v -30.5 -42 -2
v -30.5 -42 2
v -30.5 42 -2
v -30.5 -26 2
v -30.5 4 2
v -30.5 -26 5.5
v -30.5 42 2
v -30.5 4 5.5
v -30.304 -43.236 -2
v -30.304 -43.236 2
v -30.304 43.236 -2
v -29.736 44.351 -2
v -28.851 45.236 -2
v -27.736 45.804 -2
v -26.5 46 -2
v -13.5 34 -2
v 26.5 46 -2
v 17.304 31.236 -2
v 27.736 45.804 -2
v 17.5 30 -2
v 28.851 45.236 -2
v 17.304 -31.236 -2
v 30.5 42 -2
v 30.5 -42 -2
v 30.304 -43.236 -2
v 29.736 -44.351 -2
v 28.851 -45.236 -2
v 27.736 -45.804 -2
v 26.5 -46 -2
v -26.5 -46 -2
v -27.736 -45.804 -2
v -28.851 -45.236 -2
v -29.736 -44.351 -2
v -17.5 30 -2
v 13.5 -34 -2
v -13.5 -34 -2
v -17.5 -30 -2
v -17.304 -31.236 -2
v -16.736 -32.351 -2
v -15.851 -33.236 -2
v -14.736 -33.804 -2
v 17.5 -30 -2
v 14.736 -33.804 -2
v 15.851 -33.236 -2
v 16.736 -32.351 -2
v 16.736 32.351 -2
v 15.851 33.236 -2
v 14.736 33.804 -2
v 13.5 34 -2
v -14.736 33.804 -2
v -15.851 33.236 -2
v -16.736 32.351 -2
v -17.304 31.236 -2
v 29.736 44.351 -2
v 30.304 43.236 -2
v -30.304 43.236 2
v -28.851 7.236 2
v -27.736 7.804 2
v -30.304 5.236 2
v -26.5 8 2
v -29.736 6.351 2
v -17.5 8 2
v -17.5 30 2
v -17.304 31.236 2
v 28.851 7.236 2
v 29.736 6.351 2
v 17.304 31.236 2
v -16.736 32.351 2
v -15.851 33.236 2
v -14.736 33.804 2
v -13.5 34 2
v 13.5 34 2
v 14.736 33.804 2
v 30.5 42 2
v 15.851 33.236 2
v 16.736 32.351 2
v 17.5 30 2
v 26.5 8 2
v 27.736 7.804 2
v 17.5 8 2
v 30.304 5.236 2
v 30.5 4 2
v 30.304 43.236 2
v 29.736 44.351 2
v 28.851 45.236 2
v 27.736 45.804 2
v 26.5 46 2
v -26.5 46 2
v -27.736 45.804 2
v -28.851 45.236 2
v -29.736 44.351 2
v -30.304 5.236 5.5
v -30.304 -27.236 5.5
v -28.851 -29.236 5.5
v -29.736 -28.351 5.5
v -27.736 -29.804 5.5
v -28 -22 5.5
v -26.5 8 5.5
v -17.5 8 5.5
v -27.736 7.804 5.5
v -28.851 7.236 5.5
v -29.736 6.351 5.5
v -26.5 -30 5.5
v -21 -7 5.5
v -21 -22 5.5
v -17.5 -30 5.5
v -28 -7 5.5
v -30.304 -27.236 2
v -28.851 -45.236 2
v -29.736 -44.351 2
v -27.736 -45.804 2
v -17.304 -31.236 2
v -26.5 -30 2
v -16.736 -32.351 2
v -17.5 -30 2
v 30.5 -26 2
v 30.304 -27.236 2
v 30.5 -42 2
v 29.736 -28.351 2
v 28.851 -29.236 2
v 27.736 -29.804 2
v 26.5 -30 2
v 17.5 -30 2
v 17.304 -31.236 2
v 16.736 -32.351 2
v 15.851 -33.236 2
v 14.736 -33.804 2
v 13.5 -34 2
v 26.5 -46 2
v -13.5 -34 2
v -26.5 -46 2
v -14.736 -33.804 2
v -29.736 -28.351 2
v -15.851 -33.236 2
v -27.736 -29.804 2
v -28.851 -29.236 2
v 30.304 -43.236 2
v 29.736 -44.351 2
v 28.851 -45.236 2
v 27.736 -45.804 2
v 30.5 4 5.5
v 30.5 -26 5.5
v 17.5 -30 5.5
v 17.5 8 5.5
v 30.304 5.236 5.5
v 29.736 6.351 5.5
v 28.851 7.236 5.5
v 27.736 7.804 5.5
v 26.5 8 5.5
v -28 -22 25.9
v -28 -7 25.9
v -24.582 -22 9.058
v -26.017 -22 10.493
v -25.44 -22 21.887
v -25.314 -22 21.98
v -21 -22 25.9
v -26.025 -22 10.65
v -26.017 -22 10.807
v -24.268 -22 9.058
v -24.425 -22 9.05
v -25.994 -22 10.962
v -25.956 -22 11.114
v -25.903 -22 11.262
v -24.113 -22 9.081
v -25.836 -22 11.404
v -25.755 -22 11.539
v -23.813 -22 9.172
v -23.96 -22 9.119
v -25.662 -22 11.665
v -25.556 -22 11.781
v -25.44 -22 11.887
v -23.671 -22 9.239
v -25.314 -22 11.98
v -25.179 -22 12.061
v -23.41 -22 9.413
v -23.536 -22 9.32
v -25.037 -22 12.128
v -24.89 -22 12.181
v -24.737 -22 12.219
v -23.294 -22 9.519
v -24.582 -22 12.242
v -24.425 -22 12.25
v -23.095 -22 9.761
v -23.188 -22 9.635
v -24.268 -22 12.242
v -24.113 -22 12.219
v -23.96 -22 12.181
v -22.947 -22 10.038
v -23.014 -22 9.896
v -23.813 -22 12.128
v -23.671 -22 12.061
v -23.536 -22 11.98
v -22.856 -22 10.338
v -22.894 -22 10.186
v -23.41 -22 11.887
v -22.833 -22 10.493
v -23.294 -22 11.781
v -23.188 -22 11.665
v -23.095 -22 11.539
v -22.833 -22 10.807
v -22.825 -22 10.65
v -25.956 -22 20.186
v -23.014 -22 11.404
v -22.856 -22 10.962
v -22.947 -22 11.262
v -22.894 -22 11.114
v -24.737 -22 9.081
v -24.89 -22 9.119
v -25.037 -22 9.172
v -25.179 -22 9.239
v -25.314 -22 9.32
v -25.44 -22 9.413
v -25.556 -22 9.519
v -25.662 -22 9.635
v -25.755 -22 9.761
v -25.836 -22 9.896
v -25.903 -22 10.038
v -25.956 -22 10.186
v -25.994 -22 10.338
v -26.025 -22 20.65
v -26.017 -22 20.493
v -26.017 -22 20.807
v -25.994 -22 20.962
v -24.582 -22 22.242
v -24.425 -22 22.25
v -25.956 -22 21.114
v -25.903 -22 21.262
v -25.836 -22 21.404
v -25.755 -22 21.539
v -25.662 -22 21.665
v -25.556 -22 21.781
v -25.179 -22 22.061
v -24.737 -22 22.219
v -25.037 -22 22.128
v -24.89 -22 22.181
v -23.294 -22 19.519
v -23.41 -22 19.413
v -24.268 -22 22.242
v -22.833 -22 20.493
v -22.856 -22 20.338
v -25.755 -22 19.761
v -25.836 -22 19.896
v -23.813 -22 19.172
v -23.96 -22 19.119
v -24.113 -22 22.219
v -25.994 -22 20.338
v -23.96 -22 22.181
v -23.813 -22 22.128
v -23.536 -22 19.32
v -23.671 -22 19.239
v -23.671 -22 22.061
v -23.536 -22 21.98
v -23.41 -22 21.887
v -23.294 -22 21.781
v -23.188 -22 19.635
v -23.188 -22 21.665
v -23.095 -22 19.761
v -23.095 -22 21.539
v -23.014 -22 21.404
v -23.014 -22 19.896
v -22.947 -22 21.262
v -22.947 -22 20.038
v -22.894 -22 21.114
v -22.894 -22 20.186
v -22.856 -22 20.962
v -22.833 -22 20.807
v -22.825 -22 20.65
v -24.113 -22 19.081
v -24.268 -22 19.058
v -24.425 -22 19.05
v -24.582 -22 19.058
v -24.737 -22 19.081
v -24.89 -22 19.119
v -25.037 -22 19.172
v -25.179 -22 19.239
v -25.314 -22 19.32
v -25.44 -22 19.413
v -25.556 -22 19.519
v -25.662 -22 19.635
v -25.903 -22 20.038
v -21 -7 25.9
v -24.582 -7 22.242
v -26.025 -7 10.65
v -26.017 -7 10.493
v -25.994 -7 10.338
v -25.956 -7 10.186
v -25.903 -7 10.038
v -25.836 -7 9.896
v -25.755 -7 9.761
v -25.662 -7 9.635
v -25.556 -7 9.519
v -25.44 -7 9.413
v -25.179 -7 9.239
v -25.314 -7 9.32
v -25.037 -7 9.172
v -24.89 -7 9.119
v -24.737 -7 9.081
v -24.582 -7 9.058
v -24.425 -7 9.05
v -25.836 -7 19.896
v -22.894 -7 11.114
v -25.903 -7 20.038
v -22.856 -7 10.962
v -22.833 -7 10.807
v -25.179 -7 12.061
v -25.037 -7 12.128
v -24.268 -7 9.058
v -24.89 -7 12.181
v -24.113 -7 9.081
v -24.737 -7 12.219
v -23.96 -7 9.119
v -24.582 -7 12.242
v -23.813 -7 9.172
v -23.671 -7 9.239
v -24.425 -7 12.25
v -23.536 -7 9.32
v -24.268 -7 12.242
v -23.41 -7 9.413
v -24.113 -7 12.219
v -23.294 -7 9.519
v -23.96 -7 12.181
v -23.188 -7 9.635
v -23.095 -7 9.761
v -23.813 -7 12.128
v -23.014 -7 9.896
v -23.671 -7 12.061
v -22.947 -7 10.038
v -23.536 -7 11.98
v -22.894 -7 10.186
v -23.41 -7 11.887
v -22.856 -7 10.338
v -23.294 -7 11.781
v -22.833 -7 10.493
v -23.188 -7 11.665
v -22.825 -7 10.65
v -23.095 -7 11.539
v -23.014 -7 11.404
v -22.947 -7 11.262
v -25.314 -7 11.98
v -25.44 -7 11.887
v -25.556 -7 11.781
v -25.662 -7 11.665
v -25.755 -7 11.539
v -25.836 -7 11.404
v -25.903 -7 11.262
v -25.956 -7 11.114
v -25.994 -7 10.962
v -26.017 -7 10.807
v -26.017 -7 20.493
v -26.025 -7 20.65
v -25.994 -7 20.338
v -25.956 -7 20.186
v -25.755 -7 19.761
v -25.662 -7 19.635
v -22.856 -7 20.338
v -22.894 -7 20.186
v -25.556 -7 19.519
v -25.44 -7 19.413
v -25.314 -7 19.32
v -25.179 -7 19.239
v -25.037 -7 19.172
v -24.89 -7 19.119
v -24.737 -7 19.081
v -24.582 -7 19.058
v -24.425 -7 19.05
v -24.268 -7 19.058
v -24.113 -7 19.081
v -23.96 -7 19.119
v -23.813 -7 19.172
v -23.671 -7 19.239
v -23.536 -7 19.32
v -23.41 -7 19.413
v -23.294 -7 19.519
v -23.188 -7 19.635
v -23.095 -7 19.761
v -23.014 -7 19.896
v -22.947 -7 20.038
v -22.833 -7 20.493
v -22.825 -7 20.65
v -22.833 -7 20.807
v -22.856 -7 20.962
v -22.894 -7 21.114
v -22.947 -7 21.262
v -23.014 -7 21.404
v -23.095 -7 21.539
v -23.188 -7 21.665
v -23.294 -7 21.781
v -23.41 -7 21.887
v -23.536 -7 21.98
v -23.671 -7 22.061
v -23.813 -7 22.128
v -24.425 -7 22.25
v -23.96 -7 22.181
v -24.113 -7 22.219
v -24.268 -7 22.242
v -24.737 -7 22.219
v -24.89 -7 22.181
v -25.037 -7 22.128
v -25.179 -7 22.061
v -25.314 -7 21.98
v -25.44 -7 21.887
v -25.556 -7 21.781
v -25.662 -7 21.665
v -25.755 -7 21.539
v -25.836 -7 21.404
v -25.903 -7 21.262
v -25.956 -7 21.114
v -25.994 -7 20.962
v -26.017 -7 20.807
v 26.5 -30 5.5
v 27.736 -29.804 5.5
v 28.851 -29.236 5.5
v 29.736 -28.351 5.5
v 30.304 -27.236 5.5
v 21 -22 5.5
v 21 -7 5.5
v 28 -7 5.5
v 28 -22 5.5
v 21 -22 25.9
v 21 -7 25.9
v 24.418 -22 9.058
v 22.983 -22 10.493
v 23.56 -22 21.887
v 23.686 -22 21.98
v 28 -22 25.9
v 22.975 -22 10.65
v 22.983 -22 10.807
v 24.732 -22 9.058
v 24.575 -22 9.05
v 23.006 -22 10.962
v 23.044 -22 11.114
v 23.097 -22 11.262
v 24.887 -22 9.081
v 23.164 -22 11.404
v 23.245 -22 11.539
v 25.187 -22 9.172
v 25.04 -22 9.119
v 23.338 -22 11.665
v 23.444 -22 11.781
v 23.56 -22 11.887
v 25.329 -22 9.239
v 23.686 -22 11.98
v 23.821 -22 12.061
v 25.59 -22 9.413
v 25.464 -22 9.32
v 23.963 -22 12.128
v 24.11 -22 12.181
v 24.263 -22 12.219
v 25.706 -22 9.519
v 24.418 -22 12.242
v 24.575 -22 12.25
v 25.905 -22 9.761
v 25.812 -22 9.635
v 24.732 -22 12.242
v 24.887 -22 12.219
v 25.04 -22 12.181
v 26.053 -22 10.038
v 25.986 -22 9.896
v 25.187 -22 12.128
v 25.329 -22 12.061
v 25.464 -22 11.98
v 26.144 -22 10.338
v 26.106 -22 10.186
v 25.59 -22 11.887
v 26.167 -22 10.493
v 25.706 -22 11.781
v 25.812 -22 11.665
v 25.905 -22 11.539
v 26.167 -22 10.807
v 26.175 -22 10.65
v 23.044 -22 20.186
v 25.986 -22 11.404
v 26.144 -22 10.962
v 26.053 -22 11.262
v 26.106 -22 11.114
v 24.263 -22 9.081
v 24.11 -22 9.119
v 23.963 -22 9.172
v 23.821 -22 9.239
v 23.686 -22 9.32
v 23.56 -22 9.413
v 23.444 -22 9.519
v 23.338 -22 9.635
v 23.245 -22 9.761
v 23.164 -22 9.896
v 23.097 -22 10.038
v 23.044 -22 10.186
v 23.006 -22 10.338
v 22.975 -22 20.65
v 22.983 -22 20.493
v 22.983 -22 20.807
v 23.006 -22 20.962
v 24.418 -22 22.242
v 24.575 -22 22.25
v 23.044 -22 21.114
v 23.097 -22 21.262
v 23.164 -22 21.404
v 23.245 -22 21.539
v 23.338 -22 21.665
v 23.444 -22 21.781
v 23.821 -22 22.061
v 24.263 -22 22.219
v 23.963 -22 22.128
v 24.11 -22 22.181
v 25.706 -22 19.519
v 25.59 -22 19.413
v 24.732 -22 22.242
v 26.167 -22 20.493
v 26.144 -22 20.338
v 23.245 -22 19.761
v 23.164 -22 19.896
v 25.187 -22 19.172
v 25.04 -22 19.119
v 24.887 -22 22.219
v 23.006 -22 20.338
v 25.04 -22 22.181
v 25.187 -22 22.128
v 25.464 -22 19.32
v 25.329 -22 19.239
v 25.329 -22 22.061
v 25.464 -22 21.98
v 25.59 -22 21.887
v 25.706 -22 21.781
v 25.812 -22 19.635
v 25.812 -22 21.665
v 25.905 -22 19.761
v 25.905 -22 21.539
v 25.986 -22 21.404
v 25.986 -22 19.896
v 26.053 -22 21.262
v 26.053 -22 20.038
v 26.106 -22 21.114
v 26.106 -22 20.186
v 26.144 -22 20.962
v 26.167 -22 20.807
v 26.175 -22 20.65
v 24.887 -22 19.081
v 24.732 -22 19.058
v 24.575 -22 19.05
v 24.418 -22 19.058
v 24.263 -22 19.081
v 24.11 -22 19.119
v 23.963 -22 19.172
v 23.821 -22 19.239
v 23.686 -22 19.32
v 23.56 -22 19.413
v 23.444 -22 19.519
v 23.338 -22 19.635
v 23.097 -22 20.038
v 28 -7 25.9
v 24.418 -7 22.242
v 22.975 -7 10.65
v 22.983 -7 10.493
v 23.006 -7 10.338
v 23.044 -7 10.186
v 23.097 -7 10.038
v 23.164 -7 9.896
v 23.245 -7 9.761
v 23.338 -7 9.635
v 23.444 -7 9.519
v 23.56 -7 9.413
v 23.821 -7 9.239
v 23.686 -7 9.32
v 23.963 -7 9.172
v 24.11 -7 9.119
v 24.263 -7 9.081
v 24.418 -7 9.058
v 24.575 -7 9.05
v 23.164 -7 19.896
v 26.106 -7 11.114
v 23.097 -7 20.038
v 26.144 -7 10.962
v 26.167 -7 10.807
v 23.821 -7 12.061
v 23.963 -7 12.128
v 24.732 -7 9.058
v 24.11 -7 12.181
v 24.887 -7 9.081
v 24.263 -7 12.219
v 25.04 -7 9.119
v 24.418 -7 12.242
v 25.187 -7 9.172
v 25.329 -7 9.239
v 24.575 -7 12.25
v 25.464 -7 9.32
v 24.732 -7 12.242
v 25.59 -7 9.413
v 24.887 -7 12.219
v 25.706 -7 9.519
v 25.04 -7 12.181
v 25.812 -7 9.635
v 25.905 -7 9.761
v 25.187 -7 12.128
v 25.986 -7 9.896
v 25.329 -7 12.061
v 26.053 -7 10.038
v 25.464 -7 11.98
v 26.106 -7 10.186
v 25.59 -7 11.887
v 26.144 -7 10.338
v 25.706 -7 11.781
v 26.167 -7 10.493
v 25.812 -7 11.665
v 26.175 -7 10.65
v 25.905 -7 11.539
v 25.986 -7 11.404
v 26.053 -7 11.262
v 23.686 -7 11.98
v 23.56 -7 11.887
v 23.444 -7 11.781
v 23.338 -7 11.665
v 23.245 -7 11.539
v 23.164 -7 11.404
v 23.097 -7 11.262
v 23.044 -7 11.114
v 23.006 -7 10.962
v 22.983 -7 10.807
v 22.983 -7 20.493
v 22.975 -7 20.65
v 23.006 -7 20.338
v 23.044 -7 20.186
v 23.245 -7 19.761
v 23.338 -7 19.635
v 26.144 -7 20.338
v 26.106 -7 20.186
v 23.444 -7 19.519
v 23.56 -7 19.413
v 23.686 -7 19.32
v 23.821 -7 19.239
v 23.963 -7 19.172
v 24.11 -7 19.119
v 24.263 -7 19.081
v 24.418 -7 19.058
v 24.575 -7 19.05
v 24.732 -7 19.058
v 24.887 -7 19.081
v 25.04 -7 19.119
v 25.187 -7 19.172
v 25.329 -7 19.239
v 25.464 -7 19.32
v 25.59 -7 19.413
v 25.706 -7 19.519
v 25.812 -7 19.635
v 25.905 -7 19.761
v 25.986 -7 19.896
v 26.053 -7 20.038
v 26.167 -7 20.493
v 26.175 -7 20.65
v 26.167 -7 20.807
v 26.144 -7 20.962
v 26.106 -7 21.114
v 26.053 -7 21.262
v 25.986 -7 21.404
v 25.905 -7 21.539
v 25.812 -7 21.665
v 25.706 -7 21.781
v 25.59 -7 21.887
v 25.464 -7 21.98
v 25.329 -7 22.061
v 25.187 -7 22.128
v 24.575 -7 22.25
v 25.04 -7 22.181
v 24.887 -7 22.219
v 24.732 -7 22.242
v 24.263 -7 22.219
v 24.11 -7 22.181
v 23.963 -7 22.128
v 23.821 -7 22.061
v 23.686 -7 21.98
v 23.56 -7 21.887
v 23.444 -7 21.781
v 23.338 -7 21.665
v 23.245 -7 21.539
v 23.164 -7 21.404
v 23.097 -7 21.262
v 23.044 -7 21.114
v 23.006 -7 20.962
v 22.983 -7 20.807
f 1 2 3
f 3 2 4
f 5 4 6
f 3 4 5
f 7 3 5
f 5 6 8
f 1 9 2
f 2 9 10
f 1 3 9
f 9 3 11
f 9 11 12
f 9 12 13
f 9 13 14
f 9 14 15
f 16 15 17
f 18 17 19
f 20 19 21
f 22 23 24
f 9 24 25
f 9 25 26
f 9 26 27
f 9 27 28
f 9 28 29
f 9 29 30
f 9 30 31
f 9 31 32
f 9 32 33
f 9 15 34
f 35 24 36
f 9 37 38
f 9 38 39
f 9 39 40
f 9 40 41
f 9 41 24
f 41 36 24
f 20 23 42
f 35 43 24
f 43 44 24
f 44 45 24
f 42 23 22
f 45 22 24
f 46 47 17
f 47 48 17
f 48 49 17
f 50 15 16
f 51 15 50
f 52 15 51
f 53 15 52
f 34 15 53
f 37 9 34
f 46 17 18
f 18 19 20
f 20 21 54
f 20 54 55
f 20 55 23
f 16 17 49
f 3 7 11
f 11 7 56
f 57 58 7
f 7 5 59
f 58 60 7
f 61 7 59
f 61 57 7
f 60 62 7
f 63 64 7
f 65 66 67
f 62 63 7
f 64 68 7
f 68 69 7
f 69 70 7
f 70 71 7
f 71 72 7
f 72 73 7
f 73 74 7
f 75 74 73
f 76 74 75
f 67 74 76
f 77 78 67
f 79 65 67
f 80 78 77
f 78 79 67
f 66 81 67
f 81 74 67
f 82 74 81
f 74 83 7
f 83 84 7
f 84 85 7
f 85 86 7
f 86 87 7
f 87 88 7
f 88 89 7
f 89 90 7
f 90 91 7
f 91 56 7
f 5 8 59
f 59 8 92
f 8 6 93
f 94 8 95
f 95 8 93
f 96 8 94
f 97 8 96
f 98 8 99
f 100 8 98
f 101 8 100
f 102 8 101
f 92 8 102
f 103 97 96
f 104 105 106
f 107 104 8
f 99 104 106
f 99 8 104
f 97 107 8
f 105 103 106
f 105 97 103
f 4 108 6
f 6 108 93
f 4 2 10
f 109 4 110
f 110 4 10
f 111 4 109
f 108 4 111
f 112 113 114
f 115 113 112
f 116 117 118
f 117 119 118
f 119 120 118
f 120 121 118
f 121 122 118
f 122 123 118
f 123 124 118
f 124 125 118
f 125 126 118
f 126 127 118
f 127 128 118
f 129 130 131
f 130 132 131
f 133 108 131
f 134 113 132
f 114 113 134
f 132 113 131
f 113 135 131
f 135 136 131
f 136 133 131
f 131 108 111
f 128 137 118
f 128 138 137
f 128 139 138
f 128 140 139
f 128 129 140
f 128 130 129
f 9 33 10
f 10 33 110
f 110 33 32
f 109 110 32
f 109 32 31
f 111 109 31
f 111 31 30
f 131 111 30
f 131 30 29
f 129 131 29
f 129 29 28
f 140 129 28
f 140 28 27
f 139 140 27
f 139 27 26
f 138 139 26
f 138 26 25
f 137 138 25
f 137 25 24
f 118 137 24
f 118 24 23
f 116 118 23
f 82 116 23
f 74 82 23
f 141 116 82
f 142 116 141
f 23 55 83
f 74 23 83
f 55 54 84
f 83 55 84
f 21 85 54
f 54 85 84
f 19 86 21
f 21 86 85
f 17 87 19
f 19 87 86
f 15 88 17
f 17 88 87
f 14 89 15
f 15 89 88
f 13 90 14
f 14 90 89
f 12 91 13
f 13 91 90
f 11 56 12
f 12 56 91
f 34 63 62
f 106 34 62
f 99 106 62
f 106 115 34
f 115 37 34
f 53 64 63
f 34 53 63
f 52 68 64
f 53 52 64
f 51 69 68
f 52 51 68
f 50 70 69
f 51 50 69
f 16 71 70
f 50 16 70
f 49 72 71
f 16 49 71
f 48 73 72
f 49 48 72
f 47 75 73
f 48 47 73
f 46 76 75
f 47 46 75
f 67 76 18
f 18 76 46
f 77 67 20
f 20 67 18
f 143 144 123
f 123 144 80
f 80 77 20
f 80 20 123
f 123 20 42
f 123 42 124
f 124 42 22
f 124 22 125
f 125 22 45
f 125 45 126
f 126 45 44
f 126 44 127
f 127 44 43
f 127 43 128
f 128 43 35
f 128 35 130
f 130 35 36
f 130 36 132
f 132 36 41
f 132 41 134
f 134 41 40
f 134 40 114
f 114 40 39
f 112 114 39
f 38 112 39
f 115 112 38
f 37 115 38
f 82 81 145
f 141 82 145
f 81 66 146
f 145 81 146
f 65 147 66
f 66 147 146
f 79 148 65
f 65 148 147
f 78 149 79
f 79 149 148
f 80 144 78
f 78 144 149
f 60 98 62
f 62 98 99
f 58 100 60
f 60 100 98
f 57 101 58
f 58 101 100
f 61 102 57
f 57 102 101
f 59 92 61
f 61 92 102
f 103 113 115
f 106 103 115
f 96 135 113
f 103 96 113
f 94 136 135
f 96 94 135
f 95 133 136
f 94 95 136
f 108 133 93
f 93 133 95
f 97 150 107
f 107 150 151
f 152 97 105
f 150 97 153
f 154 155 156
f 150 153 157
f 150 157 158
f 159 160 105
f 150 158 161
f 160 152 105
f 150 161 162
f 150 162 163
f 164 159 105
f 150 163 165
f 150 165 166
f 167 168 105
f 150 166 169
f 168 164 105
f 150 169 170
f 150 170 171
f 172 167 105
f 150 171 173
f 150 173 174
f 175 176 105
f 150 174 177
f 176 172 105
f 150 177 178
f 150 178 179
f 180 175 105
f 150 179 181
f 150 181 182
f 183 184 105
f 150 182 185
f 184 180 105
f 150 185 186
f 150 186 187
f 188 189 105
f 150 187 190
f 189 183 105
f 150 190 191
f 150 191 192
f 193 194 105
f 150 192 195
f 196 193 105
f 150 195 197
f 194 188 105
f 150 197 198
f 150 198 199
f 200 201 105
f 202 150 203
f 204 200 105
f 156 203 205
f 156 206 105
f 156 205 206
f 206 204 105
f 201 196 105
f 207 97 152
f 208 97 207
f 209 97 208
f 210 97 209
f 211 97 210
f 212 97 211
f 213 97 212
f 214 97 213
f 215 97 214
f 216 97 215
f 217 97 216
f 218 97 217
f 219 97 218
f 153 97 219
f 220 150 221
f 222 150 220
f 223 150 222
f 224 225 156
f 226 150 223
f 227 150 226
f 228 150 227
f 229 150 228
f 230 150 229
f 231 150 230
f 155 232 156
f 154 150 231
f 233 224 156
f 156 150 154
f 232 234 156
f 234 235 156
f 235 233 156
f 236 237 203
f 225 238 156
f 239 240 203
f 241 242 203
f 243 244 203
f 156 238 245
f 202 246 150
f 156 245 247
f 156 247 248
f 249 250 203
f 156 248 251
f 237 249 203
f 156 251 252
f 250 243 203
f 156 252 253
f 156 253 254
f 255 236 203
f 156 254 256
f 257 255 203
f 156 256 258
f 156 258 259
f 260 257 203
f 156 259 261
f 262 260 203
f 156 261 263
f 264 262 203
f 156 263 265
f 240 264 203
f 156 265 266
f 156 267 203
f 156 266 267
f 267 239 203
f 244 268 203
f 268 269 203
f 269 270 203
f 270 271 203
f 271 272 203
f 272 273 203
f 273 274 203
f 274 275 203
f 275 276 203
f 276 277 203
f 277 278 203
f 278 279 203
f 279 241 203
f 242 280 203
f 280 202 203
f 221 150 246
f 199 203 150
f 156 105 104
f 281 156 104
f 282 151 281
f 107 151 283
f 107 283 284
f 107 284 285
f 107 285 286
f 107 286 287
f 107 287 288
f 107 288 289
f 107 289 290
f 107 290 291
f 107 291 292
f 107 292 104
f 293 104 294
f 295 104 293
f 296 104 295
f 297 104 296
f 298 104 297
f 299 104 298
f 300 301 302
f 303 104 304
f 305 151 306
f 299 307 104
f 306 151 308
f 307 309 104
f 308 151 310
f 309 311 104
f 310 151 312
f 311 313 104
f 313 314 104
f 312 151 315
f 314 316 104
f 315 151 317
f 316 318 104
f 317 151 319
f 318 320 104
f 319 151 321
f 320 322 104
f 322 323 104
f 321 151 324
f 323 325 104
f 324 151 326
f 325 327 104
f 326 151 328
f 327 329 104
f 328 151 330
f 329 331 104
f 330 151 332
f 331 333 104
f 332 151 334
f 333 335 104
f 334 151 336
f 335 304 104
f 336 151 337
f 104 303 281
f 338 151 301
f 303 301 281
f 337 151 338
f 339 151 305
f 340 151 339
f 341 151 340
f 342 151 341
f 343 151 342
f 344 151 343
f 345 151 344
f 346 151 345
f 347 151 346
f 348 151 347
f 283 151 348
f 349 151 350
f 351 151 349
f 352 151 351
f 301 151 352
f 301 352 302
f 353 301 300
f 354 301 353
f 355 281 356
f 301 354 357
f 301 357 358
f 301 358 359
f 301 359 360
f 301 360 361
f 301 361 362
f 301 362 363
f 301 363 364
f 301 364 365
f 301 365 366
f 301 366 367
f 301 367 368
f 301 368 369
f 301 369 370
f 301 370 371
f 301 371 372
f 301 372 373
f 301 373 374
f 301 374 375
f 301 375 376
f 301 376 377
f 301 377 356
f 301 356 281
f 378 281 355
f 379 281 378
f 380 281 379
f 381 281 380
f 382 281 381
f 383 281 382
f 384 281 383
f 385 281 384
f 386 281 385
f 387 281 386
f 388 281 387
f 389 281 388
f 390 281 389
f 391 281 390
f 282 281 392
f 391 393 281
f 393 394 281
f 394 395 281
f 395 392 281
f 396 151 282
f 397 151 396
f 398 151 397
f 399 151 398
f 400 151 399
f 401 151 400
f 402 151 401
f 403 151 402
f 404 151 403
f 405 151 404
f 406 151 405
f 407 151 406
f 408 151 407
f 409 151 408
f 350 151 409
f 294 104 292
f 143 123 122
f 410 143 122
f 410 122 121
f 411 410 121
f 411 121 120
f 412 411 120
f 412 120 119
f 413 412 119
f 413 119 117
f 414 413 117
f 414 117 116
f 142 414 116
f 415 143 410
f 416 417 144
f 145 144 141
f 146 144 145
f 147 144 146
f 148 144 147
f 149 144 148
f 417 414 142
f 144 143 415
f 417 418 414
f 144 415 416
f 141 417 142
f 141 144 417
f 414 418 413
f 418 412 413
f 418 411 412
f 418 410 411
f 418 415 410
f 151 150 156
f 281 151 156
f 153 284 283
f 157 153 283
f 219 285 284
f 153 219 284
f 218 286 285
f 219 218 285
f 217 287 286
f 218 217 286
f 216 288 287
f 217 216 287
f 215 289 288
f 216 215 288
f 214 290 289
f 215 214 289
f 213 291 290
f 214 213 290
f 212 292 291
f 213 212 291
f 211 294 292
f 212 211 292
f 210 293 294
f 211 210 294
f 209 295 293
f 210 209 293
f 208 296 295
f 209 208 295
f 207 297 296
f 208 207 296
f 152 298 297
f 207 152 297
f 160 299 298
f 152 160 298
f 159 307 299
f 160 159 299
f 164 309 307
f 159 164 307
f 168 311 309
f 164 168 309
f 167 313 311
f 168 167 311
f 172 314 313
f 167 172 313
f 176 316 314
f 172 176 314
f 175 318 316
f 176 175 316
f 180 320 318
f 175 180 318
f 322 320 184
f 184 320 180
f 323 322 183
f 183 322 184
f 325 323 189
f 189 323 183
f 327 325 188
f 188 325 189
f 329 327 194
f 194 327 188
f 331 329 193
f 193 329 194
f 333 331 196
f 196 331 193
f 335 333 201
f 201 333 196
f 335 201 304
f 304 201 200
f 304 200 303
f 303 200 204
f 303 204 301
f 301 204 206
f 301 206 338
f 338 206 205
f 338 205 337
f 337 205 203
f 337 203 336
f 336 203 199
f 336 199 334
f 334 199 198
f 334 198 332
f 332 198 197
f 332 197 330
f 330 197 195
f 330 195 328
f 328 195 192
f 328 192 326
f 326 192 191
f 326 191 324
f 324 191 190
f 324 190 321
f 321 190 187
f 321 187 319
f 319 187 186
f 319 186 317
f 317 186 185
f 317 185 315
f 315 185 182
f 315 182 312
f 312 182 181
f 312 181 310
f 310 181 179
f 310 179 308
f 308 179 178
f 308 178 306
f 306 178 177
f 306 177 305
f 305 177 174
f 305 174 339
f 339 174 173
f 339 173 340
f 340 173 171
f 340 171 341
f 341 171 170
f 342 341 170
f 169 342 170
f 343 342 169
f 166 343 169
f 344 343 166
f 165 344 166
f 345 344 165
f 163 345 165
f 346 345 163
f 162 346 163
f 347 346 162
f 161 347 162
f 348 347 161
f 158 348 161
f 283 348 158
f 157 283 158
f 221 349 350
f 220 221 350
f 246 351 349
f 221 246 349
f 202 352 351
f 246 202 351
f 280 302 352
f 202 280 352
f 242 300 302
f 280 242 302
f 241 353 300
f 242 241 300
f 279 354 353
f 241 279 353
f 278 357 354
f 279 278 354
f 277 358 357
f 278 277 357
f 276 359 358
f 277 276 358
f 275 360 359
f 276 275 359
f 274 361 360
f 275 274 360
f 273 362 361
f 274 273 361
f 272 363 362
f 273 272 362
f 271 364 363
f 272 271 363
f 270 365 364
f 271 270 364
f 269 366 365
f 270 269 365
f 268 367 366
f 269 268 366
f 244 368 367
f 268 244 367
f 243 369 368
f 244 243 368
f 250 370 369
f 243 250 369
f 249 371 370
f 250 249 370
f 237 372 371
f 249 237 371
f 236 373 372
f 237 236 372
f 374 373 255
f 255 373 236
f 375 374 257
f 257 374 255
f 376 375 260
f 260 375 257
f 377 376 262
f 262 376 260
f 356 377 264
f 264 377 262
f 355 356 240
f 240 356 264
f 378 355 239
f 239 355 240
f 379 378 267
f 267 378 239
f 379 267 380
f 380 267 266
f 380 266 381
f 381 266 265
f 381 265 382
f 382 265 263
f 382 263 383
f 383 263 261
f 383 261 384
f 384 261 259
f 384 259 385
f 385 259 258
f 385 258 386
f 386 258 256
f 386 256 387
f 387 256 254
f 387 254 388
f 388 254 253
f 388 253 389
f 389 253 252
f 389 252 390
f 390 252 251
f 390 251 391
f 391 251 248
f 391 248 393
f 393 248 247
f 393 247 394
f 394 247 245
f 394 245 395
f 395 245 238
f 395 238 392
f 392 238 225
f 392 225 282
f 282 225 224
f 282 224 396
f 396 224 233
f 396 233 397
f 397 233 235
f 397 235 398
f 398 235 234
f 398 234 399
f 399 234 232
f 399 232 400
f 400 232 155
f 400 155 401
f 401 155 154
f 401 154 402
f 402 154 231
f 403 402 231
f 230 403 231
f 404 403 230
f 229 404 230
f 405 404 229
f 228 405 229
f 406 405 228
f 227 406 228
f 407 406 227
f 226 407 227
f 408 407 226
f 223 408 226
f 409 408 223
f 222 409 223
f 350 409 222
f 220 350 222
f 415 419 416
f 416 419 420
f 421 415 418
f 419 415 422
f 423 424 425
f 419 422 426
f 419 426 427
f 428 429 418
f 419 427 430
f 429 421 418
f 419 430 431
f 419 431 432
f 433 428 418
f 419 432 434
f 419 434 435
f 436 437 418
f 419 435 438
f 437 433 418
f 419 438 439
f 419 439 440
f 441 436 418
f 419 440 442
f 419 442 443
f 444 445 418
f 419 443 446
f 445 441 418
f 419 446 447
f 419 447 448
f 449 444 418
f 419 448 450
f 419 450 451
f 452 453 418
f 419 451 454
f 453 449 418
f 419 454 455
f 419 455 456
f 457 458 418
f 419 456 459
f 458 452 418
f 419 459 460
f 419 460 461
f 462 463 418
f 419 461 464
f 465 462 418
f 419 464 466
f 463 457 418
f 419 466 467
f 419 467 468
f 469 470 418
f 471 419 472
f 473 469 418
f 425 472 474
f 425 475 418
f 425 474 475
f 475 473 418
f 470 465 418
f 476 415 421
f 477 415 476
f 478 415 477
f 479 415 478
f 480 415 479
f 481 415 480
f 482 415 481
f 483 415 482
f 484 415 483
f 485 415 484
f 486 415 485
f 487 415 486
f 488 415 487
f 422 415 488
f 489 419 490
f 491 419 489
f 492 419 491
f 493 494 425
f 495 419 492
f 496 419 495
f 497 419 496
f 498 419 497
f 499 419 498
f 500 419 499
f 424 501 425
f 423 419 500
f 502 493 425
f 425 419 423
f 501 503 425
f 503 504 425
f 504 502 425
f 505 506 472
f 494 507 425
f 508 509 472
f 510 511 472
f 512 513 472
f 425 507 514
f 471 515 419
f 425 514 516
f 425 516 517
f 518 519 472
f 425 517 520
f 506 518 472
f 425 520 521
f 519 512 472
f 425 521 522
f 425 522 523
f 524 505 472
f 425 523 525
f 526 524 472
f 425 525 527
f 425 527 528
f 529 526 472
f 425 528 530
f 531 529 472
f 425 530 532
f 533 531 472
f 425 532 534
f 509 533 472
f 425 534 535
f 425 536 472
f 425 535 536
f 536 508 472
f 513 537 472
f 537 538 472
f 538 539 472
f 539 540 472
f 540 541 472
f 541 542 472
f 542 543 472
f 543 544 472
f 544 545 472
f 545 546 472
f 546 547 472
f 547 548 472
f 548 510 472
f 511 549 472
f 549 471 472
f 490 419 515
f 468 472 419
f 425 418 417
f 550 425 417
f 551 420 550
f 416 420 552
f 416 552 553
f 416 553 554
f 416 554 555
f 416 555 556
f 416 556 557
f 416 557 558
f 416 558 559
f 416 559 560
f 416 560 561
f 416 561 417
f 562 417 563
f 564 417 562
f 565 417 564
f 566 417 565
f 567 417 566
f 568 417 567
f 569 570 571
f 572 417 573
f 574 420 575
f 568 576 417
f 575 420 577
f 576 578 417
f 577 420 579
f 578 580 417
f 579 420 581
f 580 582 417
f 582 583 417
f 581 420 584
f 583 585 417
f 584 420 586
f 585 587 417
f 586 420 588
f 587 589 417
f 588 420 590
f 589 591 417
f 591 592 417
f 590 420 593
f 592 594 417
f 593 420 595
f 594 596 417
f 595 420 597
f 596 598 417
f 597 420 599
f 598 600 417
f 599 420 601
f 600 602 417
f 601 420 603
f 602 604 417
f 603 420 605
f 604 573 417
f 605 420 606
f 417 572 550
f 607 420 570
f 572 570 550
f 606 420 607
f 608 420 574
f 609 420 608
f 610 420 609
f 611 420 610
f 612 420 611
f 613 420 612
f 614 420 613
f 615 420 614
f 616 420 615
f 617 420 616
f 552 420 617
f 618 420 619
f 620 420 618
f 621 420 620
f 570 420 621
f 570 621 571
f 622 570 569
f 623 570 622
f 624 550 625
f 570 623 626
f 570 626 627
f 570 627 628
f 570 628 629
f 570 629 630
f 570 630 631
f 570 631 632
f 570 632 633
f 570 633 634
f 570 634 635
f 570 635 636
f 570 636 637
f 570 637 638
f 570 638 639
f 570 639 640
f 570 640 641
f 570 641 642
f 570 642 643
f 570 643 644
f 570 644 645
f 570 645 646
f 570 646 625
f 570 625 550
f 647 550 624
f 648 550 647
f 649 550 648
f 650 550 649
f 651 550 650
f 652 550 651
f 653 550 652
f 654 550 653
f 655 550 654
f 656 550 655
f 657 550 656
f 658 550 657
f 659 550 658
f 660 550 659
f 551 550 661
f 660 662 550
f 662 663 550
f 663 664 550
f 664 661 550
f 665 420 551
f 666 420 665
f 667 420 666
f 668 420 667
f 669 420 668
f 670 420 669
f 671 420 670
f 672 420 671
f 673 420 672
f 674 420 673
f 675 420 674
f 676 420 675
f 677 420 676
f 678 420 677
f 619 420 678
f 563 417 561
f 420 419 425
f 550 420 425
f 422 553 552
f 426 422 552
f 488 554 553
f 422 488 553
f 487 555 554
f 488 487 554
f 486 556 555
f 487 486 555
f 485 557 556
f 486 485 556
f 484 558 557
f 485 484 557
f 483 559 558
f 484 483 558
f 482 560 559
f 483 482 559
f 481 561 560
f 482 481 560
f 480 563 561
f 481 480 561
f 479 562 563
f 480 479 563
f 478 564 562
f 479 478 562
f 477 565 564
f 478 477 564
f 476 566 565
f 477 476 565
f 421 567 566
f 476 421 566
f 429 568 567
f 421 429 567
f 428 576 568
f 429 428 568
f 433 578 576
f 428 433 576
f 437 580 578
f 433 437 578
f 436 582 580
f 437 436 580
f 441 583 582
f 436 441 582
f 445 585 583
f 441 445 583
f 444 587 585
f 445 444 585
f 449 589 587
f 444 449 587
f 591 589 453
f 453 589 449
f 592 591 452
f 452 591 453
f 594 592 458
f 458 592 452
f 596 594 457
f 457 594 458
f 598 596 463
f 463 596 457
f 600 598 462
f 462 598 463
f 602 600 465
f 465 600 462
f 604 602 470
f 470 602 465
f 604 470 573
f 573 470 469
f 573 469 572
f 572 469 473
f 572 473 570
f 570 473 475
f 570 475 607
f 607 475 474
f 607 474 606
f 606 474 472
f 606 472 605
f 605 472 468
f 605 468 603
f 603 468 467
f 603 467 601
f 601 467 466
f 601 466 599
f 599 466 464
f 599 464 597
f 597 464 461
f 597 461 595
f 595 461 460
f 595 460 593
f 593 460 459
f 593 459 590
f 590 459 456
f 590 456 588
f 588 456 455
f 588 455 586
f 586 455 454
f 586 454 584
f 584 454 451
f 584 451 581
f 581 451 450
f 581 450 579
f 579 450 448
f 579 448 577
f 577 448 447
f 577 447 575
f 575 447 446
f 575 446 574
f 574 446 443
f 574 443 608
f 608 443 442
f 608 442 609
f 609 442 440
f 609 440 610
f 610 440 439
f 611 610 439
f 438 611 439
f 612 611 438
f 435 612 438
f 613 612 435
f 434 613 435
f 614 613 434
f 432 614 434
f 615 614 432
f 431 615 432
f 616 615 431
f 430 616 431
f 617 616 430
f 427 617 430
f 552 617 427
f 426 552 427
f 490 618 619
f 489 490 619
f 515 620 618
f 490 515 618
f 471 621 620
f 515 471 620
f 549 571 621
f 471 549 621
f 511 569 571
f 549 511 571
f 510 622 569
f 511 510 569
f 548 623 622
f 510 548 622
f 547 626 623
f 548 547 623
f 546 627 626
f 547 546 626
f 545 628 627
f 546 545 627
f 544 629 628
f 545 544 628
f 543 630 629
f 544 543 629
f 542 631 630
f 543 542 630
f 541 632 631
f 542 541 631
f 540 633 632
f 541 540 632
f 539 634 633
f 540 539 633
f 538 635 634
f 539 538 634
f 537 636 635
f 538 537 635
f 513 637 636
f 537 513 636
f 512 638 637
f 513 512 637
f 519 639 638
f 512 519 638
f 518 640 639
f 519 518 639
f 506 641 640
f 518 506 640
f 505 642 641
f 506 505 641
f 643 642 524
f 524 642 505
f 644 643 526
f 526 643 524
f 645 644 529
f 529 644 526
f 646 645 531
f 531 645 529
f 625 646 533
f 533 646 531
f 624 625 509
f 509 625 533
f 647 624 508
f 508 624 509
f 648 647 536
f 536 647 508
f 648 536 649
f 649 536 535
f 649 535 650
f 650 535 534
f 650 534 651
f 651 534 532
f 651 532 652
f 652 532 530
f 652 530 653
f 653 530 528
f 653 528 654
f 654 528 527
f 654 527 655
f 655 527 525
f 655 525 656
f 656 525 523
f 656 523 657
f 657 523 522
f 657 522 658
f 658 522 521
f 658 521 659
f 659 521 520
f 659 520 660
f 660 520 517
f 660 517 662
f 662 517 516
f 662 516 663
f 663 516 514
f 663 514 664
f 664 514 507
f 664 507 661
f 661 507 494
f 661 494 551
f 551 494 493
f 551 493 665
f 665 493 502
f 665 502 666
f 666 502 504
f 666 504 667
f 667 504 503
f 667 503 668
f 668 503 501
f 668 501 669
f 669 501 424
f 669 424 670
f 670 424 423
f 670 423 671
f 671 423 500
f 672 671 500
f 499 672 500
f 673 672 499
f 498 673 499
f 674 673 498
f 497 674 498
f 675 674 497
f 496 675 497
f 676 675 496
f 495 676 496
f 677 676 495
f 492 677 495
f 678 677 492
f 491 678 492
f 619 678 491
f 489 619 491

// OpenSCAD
// file: mg995.scad
srv995_alto_caja = 31;
srv995_alto_base_ini_ala = 27;
srv995_alto_base_fin_ala = 29.8;
srv995_alto_total_eje_circular = 46.2;
srv995_dist_tornillos_largo = 37;
srv995_dist_tornillos_ancho = 16.1;
srv995_dist_tornillo_ala = 9;
srv995_largo_base = 41.1;
srv995_largo_con_alas = 55;
srv995_largo_con_una_ala = 48.2;
srv995_ancho_base = 20.5;
srv995_ancho_alas = 7.15; 
srv995_largo_alas = 20.5; 
srv995_profundo_muesca_ala = 1.5;
srv995_ancho_muesca_ala = 1.8;
srv995_ancho_saliente_cilindro_eje = 7;
// file: tornillos_union.scad
dist_tornillos = 5; //Distancia entre los tornillos de enlace de piezas
torn_ancho = 1.6;
alto_capa = 3;


module tornillos_union4(centrox, centroy) {
		translate([centrox/2+dist_tornillos,centroy/2+dist_tornillos,0])
			cylinder(r=torn_ancho,h=alto_capa,$fn=64);
		translate([centrox/2-dist_tornillos,centroy/2+dist_tornillos,0])
			cylinder(r=torn_ancho,h=alto_capa,$fn=64);
		translate([centrox/2-dist_tornillos,centroy/2-dist_tornillos,0])
			cylinder(r=torn_ancho,h=alto_capa,$fn=64);
		translate([centrox/2+dist_tornillos,centroy/2-dist_tornillos,0])
			cylinder(r=torn_ancho,h=alto_capa,$fn=64);
}

module tornillo(x, y) {
		translate([x, y, 0])
			cylinder(r=torn_ancho,h=alto_capa,$fn=64);
}

module tornillos_asiento4(centrox, centroy) {
		translate([centrox/2+dist_tornillos,centroy/2+dist_tornillos,0])
			cylinder(r2=torn_ancho, r1=asiento_ancho,h=alto_asiento,$fn=64);
		translate([centrox/2-dist_tornillos,centroy/2+dist_tornillos,0])
			cylinder(r2=torn_ancho, r1=asiento_ancho,h=alto_asiento,$fn=64);
		translate([centrox/2-dist_tornillos,centroy/2-dist_tornillos,0])
			cylinder(r2=torn_ancho, r1=asiento_ancho,h=alto_asiento,$fn=64);
		translate([centrox/2+dist_tornillos,centroy/2-dist_tornillos,0])
			cylinder(r2=torn_ancho, r1=asiento_ancho,h=alto_asiento,$fn=64);
}

module tornillos_union2(centrox, centroy, orientacion) {
	if (orientacion == "h")
	{
		translate([centrox/2+dist_tornillos,centroy/2,0])
			cylinder(r=torn_ancho,h=alto_capa,$fn=64);
		translate([centrox/2-dist_tornillos,centroy/2,0])
			cylinder(r=torn_ancho,h=alto_capa,$fn=64);
	}
	else
	{
		translate([centrox/2,centroy/2-dist_tornillos,0])
			cylinder(r=torn_ancho,h=alto_capa,$fn=64);
		translate([centrox/2,centroy/2+dist_tornillos,0])
			cylinder(r=torn_ancho,h=alto_capa,$fn=64);
	}
}
// main file
include <tornillos_union.scad>
include <mg995.scad>

ancho_soporte_servo_pie = 7;
alto_pie = 4;
ancho_soporte = 15;
alto_capa = 15;

borde_soporte = 2.5;

largo_base_piezas = 2*ancho_soporte_servo_pie+borde_soporte*2;
largo_base = largo_base_piezas+42;
ancho_base = 92;
ancho_base_servo = 38; 

	base();

	translate ([-ancho_soporte_servo_pie+largo_base/2-borde_soporte,-ancho_soporte+8,alto_pie+1.4])
	soporte_servo();

	translate ([-largo_base/2+borde_soporte,-ancho_soporte+8,alto_pie+1.4])
	soporte_servo();



module soporte_servo()
{
	rotate([90,0,0])
	difference() {
		cube([ancho_soporte_servo_pie, srv995_largo_alas, ancho_soporte]);
		tornillos_union2(srv995_ancho_alas, srv995_largo_alas, "v");
	}
}

module base()
{

difference () {
	union() {
		bcube([largo_base, ancho_base, alto_pie],cr=4, cres=4);
		translate ([0,8-ancho_base_servo/2,1.5+alto_pie/2])
			bcube([largo_base, ancho_base_servo, alto_pie],cr=4, cres=4);
	}


		bcube([largo_base-26, ancho_base-24, alto_pie+10],cr=4, cres=4);

}

}

//------------------------------------------------------------------------------
//-- Bevel Cube main function
//-- Parameters:
//--   * Size:  Cube size
//--   * cr : Corner radius (if cr==0, a standar cube is built)
//--   * cres:  Corner resolution (in points). cres=0 means flat corners
//------------------------------------------------------------------------------
module bcube(size,cr=0,cres=0)
{
  //-- Internal cube size
  bsize = size - 2*[cr,cr,0];

  //-- Get the (x,y) coorner coordinates in the 1st cuadrant
  x = bsize[0]/2;
  y = bsize[1]/2;

  //-- A corner radius of 0 means a standar cube!
  if (cr==0)
    cube(bsize,center=true);
  else {

      
      //-- The height of minkowski object is double. So
      //-- we sould scale by 0.5
      scale([1,1,0.5])

      //-- This translation is for centering the minkowski objet
      translate([-x, -y,0])

      //-- Built the  beveled cube with minkowski
      minkowski() {

        //-- Internal cube
        cube(bsize,center=true);

        //-- Cylinder in the corner (1st cuadrant)
        translate([x,y, 0])
          cylinder(r=cr, h=bsize[2],center=true, $fn=4*(cres+1));
      }
  }

}
